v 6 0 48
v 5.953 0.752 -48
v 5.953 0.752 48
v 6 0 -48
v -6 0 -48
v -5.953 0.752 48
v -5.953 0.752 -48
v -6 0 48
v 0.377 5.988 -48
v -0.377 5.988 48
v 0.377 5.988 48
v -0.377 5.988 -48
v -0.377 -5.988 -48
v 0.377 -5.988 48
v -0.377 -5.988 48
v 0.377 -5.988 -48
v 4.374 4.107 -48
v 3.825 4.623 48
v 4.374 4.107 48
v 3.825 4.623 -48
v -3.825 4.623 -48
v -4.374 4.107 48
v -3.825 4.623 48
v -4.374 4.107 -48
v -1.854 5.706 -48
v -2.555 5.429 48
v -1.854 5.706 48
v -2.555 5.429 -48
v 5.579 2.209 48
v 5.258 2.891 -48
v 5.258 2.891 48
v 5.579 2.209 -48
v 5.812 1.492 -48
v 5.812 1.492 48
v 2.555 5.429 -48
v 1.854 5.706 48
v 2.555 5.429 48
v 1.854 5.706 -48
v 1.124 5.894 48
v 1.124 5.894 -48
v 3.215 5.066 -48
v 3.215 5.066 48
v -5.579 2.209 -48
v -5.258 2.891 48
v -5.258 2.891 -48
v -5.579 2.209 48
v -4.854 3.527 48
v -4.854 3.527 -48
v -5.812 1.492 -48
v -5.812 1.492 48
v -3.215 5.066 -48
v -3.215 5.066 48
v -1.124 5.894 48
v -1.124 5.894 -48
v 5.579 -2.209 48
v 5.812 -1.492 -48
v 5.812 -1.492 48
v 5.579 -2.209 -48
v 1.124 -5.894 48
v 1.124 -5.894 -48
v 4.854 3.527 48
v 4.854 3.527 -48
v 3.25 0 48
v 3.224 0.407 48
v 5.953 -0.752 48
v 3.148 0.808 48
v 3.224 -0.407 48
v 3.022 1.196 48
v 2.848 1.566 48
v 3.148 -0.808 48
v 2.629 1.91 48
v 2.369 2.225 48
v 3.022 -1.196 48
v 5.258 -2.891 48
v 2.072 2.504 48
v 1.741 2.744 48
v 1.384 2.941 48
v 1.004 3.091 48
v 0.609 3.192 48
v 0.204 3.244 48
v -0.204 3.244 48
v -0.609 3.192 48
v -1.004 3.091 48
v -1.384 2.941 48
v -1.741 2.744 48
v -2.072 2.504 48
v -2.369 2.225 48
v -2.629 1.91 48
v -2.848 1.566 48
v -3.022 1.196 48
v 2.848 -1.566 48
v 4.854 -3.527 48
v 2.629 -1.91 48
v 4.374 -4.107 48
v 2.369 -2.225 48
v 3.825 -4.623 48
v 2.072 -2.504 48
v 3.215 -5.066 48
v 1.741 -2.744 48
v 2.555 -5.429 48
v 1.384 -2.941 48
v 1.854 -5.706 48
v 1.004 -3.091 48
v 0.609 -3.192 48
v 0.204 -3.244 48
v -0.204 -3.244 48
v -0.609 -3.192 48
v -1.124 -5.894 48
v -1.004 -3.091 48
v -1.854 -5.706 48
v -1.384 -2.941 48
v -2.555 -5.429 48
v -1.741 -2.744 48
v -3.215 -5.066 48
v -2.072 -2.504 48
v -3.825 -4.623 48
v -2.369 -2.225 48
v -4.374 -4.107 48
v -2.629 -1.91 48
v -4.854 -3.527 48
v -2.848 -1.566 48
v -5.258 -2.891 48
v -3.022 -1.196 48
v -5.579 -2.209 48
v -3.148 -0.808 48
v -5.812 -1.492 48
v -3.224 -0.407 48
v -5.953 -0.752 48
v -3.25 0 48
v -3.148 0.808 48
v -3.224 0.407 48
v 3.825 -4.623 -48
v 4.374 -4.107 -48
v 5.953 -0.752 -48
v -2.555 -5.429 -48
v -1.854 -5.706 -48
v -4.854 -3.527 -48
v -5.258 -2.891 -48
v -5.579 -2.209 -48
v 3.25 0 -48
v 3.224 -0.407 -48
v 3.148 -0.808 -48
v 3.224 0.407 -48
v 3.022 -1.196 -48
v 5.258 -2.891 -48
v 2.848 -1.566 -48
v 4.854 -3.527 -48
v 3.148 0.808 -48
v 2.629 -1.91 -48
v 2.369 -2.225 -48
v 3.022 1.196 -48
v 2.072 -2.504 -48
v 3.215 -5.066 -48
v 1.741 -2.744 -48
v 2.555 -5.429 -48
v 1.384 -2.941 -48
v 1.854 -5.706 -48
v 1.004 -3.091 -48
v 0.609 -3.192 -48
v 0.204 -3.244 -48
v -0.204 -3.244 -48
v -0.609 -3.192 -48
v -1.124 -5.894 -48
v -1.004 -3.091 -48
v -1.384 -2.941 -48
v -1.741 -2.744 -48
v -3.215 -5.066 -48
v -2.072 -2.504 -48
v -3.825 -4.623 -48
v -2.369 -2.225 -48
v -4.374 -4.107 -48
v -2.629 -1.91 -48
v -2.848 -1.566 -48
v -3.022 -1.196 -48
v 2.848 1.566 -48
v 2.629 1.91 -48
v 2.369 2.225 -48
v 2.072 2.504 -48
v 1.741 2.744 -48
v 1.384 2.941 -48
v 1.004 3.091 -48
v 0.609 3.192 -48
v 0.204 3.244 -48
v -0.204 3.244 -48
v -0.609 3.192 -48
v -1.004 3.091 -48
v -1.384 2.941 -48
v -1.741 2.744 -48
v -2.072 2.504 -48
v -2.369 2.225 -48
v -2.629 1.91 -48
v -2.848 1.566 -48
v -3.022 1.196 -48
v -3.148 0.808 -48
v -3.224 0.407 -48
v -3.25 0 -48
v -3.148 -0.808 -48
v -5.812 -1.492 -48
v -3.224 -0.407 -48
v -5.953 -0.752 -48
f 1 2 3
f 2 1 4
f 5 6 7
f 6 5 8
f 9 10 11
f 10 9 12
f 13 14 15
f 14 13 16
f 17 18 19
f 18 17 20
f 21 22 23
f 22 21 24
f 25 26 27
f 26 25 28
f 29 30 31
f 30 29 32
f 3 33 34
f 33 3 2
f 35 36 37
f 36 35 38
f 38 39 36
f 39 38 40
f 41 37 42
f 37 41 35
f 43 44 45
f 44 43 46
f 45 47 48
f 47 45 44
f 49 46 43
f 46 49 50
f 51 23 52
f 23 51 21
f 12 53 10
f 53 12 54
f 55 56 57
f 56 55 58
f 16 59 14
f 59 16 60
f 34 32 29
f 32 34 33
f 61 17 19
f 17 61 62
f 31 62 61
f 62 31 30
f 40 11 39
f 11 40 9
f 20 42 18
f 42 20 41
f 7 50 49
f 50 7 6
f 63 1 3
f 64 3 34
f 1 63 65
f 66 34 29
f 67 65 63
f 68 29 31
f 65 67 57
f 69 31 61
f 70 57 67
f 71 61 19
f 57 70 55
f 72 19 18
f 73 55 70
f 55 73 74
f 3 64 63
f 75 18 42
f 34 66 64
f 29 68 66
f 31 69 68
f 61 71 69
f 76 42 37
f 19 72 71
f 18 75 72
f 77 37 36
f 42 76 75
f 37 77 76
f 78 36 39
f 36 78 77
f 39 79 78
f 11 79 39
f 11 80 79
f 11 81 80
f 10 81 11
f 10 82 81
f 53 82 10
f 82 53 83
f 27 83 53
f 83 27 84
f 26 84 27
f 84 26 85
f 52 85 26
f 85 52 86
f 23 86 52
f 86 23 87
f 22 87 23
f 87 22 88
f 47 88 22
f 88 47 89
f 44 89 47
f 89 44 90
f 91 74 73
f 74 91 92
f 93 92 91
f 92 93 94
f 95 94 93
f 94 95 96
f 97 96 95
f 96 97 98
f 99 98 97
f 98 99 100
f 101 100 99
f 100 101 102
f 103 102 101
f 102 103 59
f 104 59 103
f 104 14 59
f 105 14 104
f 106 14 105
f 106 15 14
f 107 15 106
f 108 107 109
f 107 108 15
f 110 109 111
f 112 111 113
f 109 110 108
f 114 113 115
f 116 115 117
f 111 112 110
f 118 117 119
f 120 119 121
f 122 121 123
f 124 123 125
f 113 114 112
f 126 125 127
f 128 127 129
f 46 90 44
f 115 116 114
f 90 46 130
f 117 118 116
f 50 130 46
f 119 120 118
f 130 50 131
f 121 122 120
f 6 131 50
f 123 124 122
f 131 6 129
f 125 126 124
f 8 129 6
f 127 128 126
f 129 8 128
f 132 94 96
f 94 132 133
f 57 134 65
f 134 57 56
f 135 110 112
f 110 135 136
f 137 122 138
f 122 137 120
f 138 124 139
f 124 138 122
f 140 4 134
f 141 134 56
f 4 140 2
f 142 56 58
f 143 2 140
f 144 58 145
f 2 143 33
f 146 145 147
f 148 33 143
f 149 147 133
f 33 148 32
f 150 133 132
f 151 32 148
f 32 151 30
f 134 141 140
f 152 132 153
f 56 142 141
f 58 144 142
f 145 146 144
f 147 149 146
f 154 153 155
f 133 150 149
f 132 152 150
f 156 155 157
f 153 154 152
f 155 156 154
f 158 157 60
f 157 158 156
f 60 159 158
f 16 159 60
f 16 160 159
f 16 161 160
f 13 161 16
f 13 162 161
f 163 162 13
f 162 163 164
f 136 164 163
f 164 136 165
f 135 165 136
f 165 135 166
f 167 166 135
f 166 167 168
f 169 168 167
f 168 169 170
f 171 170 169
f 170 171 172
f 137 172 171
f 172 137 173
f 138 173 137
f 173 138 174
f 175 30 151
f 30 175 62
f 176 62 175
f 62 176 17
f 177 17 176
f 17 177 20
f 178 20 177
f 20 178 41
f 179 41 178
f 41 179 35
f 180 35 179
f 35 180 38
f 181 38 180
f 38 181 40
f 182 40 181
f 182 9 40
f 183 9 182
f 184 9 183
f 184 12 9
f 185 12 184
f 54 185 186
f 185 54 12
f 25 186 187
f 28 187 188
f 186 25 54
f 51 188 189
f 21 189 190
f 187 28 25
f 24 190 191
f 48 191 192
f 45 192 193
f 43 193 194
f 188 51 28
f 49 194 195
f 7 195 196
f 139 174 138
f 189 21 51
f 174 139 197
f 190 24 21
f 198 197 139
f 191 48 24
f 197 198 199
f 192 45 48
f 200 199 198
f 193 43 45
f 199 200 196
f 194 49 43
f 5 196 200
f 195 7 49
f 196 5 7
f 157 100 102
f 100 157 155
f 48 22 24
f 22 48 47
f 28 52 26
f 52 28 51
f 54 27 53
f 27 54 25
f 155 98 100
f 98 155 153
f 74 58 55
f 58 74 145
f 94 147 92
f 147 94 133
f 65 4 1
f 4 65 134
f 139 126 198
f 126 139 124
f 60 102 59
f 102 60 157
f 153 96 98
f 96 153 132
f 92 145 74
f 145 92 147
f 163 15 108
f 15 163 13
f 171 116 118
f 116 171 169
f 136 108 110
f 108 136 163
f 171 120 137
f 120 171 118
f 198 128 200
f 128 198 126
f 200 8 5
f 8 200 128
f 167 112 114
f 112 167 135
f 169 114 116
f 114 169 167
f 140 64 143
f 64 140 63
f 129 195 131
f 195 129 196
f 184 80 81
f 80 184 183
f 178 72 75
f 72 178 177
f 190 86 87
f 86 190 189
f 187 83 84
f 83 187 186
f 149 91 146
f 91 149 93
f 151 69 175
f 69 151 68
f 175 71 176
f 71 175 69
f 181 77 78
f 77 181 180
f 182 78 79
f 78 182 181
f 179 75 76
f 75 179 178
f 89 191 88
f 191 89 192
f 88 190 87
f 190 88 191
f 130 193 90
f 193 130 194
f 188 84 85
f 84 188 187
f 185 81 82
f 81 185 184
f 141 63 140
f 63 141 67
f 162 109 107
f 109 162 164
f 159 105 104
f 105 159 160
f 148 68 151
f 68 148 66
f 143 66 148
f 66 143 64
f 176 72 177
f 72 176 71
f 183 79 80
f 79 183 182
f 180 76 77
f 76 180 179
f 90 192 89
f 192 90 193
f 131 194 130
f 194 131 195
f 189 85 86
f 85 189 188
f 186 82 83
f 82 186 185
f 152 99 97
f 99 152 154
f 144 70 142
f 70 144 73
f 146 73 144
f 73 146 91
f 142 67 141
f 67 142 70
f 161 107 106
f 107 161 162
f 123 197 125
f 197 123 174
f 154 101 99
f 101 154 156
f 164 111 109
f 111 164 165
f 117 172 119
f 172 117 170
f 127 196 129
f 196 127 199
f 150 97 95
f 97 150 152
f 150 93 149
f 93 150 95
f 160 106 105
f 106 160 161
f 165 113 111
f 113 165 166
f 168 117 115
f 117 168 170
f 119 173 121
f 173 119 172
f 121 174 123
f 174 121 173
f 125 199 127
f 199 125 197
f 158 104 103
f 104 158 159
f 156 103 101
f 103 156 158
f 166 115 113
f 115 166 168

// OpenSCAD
$fn = 50;


difference() {
	union() {
		translate(v = [0, 0, -48.0000000000]) {
			cylinder(h = 96, r = 6.0000000000);
		}
	}
	union() {
		translate(v = [0, 0, -100.0000000000]) {
			cylinder(h = 200, r = 3.2500000000);
		}
	}
}
